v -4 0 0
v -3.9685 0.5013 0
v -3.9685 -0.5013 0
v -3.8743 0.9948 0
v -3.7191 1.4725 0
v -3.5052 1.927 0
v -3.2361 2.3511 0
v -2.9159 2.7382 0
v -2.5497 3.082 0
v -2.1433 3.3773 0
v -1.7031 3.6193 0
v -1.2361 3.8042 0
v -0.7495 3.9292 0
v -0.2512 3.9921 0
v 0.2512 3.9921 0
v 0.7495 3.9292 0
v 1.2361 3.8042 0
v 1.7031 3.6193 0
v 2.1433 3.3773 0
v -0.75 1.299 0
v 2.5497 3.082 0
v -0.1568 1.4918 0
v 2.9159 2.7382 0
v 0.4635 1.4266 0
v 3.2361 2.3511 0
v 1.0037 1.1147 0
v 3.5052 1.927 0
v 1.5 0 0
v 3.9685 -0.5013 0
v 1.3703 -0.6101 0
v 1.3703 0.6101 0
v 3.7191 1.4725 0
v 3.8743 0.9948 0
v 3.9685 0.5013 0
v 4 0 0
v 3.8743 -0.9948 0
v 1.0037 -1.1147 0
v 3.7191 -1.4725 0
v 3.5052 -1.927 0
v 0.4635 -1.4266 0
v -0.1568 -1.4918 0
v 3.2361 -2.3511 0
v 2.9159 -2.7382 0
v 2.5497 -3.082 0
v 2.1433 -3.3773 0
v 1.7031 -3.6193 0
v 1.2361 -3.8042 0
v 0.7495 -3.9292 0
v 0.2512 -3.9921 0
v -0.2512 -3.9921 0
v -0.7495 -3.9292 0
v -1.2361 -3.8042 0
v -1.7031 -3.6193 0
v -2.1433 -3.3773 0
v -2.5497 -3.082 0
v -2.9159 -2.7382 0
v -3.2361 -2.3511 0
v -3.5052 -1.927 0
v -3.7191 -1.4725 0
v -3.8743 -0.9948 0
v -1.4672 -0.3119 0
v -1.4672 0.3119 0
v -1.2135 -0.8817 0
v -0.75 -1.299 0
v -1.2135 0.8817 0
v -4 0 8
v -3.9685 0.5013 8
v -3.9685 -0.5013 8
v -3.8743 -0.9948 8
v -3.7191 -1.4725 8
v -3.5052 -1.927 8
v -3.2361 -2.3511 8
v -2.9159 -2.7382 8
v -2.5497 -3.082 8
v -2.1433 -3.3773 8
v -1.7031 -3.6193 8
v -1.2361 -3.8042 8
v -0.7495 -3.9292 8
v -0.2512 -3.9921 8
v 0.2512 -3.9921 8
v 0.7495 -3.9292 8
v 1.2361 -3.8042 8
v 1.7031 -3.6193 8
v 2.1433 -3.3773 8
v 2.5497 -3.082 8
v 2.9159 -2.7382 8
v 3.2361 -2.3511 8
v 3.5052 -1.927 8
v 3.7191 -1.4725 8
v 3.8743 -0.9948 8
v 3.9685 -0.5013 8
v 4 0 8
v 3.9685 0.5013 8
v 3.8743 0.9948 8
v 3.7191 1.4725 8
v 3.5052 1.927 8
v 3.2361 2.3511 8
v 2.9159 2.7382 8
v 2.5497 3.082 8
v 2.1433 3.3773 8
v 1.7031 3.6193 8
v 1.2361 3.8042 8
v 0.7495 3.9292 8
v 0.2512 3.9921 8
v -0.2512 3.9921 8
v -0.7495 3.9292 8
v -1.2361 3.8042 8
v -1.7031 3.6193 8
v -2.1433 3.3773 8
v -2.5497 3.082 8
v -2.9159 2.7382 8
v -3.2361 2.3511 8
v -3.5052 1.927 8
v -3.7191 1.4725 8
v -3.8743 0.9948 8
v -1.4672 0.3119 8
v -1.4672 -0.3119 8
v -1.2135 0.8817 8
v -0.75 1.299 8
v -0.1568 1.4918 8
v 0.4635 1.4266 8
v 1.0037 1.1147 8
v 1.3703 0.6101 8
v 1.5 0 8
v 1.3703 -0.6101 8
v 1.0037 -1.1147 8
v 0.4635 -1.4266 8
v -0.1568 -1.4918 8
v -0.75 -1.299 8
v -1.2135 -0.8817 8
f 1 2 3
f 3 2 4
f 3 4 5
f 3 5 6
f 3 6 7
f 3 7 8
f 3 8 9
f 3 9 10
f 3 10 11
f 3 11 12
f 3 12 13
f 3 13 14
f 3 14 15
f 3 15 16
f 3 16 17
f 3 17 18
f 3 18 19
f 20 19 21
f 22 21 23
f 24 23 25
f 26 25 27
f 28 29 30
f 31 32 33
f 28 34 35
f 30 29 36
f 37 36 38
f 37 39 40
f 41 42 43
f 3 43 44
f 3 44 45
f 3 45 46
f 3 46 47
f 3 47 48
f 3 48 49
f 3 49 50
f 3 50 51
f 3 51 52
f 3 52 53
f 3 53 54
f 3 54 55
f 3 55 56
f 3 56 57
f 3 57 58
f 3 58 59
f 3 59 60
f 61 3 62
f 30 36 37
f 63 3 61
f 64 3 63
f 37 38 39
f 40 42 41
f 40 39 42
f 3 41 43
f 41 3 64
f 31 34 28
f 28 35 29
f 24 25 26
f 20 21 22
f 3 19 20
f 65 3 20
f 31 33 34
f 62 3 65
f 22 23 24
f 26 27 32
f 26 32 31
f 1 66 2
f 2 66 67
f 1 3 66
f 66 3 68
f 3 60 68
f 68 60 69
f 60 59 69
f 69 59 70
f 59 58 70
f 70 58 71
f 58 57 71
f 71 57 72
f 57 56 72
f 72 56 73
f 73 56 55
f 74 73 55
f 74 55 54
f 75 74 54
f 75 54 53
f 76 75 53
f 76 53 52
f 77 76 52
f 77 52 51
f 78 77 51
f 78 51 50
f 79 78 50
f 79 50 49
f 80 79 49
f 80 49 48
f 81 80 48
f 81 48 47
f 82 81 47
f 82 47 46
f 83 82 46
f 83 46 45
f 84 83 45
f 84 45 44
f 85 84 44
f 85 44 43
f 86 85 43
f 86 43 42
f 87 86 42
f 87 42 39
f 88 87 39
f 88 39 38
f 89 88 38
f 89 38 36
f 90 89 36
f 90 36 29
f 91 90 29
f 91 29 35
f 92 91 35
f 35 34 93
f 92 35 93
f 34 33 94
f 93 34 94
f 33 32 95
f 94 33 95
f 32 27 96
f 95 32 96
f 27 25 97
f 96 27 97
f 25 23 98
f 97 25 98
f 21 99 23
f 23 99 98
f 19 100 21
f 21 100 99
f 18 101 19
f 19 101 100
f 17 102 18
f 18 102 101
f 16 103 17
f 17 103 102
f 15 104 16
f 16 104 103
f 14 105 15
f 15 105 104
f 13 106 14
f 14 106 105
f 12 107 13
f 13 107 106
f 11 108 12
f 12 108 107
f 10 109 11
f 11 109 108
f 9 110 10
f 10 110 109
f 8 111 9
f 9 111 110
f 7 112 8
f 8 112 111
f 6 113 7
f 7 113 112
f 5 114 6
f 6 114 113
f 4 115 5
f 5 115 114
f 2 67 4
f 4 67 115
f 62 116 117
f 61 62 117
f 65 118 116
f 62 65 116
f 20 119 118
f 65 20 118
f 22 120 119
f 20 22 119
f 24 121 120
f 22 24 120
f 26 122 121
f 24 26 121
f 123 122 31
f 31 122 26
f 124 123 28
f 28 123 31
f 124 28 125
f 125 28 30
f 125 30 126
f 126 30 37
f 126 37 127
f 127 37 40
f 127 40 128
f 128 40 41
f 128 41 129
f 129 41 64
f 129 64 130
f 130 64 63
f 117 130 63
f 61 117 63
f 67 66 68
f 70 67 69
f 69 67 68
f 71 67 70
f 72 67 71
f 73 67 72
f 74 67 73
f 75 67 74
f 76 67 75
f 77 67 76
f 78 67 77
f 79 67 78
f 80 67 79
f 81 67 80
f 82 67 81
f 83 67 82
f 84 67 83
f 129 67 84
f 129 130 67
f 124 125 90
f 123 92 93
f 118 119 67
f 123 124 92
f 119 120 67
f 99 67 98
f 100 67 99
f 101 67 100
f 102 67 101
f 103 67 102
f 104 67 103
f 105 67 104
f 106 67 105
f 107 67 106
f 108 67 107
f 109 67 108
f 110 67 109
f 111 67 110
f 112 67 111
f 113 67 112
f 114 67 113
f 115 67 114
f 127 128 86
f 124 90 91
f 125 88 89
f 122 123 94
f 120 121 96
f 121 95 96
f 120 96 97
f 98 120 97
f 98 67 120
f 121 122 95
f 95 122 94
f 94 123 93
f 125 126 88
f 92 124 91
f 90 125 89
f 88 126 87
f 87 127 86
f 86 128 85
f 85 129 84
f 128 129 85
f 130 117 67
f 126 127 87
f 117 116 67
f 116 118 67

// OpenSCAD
difference(){
	cylinder(h=8,r=4,$fn=50);
	cylinder(h=8,r=1.5,$fn=15);
}
